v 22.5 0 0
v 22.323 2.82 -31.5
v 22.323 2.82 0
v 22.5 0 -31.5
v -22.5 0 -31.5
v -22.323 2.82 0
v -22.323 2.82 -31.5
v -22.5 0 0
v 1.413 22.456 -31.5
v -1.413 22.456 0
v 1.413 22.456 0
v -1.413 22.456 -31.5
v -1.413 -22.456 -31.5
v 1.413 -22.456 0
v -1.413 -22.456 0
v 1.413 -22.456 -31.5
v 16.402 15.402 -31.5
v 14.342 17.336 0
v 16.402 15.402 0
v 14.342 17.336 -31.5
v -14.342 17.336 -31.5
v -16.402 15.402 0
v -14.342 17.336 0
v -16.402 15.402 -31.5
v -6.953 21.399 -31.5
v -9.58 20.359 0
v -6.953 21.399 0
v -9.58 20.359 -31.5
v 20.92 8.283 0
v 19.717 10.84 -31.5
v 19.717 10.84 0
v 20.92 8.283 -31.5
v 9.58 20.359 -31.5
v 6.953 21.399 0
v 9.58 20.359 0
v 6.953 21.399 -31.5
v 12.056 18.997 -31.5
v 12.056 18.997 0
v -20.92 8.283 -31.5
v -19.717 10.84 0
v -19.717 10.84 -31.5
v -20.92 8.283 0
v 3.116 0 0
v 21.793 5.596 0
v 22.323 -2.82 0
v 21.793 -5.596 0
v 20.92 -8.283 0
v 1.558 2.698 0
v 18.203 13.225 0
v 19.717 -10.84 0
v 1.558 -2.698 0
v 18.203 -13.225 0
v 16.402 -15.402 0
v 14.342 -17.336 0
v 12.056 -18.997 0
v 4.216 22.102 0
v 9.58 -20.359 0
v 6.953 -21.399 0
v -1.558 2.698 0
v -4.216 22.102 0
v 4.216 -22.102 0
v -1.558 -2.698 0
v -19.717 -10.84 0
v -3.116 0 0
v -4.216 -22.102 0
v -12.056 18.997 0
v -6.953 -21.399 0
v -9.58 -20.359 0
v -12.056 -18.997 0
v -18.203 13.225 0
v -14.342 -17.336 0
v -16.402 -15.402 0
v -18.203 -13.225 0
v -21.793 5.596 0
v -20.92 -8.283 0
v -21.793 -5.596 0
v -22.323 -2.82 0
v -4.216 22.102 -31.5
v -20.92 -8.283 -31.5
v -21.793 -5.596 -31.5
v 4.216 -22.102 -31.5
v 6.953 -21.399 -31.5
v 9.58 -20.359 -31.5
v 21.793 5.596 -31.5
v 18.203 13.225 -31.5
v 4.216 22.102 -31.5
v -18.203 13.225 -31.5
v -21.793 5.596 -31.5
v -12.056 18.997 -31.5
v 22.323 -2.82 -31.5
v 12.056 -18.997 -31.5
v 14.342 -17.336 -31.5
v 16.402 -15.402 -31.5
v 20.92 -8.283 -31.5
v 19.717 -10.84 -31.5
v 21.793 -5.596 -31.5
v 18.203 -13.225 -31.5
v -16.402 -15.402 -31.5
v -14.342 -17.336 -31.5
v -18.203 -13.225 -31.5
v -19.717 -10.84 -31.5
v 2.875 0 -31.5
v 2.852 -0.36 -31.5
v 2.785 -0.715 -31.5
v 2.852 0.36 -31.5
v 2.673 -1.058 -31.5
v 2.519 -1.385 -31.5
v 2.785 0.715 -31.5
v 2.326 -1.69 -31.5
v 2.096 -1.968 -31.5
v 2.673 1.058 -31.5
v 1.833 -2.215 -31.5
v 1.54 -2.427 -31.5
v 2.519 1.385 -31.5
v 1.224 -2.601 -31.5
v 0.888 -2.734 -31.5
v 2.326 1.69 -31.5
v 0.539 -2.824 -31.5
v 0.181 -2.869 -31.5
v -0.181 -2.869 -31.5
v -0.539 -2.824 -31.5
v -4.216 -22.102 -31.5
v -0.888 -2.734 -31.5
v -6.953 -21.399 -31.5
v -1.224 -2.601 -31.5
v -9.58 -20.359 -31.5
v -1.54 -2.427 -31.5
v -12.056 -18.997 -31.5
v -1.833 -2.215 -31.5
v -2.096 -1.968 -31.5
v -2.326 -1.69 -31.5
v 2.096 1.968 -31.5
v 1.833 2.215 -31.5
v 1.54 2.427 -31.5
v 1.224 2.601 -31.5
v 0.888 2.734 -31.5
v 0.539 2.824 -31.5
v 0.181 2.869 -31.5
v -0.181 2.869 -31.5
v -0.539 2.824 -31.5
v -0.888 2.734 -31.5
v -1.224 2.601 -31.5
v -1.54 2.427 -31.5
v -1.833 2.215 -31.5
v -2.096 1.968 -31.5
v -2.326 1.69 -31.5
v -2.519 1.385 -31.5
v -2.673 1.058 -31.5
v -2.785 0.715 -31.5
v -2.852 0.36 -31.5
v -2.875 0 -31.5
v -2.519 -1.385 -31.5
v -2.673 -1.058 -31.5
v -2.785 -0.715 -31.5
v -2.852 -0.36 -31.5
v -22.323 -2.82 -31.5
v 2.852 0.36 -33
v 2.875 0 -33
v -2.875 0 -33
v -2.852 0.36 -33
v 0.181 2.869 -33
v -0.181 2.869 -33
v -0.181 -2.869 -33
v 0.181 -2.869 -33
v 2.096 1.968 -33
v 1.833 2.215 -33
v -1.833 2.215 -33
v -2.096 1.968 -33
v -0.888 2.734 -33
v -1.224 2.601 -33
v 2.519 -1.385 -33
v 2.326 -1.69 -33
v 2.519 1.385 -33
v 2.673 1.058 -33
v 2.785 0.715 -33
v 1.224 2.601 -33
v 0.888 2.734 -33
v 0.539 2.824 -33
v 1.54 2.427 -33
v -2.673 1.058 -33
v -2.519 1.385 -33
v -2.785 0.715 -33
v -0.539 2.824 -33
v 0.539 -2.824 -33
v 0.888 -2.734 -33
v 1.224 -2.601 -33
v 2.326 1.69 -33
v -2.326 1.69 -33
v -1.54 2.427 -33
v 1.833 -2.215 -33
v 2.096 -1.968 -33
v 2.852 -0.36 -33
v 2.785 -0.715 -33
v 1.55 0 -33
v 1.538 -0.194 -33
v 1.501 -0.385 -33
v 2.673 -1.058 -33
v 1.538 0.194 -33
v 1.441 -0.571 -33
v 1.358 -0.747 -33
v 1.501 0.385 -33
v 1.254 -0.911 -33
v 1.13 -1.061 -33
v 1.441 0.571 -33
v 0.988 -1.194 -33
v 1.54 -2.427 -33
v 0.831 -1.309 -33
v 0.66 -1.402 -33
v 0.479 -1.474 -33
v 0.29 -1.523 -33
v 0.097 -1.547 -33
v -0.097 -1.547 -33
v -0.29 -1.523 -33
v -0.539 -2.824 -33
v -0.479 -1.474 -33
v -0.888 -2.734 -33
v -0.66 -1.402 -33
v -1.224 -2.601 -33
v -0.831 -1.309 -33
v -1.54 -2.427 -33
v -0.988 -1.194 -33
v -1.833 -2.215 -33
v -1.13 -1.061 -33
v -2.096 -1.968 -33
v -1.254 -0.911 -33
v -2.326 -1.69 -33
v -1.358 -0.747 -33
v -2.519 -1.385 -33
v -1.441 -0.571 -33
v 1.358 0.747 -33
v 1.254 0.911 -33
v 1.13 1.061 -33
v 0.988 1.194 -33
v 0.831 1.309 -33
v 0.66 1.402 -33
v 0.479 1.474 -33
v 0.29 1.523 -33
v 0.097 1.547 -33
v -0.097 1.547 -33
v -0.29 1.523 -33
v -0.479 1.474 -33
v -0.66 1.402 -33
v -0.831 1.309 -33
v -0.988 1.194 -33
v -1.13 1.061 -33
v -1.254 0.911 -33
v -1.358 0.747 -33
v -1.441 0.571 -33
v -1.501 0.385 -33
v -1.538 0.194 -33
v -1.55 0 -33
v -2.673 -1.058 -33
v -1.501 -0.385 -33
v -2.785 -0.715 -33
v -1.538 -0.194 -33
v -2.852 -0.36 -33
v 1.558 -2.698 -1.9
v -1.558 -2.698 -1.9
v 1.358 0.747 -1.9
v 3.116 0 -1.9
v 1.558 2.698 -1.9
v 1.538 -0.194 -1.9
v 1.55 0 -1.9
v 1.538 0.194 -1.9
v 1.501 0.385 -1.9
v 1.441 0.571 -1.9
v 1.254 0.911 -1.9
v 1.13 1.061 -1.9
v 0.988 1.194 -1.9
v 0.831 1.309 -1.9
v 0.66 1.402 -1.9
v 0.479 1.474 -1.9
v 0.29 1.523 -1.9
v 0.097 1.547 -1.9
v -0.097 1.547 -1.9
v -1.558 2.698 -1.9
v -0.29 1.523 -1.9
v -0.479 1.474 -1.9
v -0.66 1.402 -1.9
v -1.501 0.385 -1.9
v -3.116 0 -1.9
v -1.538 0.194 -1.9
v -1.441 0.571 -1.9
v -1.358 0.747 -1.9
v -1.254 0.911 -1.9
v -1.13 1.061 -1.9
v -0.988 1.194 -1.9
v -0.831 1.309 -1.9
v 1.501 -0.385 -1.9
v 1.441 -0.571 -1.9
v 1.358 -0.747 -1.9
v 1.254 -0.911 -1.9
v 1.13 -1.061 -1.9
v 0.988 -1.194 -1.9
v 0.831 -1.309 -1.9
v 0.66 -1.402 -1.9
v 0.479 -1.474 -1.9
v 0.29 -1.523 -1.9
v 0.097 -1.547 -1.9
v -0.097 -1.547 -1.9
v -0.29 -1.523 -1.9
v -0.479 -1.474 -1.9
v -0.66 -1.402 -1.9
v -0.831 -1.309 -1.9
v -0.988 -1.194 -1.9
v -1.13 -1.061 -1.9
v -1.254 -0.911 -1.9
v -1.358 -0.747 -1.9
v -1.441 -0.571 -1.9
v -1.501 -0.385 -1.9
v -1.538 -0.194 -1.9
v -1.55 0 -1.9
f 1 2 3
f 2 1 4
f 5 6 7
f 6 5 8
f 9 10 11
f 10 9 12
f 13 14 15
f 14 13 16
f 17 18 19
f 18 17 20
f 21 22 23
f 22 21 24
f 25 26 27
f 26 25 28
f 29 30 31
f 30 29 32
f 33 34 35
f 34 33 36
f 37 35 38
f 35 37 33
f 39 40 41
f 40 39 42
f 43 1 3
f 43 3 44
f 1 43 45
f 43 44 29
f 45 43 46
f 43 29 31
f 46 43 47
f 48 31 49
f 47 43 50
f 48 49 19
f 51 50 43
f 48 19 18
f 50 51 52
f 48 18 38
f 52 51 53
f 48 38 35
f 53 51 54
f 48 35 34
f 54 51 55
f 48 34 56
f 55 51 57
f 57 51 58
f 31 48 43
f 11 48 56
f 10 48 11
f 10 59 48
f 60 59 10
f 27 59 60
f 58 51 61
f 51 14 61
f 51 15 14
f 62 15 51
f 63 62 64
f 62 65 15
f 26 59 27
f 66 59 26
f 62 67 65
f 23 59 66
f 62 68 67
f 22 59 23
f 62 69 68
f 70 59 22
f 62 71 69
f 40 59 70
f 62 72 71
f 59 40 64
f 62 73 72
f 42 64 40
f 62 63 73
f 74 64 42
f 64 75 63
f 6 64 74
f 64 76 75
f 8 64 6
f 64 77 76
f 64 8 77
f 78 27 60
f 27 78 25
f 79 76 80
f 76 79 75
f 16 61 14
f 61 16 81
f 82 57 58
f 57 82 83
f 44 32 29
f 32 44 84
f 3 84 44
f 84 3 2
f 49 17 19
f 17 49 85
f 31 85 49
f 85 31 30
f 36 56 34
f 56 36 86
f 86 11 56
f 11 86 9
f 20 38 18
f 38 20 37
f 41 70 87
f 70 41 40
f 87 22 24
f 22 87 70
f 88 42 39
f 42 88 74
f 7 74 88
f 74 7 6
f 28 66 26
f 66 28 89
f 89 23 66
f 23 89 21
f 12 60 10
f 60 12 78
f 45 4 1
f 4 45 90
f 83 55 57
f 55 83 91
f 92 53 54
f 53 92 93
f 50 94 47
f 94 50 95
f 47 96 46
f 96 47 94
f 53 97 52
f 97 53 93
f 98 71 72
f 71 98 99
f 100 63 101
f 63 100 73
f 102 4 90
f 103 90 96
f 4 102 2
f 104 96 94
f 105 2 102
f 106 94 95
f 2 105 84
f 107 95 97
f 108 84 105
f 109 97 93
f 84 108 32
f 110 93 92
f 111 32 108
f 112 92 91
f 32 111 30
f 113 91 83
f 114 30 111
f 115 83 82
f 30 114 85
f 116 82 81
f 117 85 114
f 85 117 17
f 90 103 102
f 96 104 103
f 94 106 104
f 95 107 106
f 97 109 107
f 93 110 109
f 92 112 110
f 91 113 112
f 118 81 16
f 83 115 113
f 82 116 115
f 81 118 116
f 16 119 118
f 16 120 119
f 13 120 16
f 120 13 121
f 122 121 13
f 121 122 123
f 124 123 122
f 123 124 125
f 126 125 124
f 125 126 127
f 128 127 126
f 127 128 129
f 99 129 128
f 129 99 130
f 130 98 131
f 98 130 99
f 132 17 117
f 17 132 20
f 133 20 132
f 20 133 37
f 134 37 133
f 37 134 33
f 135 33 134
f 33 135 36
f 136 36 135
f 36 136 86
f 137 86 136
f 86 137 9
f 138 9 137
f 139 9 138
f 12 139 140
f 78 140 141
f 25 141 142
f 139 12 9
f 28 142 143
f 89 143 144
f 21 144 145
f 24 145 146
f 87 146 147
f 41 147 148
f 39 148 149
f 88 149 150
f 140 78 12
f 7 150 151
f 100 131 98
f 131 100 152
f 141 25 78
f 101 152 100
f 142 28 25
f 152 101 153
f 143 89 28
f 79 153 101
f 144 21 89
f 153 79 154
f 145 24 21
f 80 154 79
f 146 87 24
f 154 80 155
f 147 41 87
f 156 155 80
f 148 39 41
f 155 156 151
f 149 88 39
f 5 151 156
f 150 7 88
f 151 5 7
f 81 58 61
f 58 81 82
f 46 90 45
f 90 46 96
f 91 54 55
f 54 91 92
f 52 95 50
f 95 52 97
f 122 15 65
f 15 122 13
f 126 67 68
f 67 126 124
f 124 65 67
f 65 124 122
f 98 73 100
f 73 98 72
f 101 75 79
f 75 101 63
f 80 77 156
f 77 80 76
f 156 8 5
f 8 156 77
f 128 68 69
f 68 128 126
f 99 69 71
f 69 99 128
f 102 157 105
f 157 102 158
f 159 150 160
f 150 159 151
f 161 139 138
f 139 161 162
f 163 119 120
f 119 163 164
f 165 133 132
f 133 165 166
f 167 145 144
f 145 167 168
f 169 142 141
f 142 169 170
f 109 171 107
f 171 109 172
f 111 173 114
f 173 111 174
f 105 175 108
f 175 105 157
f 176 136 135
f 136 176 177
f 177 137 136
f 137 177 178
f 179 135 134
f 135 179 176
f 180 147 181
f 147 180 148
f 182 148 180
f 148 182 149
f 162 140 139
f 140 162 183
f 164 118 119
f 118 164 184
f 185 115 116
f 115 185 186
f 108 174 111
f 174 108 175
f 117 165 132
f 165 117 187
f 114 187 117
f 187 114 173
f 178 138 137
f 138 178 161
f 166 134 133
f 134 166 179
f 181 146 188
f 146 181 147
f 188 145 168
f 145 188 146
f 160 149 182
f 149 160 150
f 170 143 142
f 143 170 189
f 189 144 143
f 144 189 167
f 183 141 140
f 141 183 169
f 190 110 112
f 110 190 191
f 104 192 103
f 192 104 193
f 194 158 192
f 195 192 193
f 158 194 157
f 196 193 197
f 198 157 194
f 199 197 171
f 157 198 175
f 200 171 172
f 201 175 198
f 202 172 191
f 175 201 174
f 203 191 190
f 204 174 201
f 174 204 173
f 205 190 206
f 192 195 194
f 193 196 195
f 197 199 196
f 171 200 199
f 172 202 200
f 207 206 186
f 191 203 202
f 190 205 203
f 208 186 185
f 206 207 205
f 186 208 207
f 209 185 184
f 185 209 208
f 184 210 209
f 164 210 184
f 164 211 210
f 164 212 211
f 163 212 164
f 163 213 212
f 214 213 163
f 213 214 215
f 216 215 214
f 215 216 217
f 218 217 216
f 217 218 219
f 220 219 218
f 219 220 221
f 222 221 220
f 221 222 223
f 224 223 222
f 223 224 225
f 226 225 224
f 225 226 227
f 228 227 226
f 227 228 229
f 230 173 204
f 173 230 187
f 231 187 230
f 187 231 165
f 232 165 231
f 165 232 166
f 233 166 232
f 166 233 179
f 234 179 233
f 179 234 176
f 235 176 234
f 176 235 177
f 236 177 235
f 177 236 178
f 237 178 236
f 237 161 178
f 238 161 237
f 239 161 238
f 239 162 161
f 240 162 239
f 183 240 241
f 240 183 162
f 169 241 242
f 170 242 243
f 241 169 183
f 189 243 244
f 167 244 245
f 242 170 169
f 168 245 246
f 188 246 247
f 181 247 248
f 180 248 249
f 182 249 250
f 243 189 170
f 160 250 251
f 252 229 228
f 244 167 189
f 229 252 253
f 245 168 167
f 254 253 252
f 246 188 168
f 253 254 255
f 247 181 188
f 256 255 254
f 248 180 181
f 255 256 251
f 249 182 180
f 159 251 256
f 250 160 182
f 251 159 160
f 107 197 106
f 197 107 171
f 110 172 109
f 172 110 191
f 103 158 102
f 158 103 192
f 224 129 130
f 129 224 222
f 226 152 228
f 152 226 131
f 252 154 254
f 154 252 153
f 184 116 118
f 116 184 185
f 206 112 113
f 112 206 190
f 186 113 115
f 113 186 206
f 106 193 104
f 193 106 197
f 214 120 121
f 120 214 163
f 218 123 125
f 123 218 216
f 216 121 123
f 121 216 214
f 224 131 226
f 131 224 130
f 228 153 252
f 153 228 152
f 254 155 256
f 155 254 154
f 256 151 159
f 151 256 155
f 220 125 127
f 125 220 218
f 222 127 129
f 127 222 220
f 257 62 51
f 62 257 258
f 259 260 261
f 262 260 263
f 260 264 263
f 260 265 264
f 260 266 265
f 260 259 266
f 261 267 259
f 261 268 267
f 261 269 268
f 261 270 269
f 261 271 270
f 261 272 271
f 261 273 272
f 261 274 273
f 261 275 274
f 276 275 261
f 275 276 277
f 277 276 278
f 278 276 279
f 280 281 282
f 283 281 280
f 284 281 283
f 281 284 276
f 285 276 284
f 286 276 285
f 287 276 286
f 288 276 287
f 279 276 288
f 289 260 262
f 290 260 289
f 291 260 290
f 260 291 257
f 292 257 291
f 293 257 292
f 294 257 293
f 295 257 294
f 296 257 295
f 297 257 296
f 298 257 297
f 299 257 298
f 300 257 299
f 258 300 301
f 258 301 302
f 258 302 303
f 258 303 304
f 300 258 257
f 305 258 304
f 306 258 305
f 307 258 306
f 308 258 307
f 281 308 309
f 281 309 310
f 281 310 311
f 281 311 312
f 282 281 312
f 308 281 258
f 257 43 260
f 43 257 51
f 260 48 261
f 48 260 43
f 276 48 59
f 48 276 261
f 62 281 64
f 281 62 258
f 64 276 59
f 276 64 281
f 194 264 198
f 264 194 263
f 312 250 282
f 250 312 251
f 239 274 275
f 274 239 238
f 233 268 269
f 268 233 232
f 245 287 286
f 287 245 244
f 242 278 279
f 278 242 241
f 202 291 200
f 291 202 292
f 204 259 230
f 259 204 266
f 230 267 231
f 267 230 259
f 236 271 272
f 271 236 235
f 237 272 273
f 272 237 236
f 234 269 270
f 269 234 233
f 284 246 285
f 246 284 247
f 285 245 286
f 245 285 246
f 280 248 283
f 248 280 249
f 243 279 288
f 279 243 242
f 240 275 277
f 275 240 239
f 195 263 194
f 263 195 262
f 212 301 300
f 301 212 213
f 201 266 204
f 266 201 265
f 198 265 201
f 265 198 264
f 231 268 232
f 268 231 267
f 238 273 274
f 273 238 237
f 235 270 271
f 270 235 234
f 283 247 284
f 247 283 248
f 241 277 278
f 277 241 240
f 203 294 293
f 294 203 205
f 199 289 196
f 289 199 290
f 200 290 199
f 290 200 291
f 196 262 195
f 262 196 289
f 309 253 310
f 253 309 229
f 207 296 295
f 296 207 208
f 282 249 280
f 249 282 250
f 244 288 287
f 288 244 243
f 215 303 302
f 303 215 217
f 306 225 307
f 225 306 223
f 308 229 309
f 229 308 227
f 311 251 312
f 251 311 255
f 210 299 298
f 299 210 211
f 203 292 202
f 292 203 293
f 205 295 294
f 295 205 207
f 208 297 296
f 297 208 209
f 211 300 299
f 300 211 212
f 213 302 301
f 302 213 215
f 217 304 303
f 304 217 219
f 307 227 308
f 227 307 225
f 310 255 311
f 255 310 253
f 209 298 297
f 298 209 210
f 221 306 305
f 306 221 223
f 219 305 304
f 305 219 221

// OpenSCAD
$fn = 50;

difference() {
	union() {
		translate(v = [0, 0, -31.5]) {
			cylinder(h = 31.5, r = 22.5);
		}
		#translate(v = [0, 0, -33.0]) {
			cylinder(h = 33, r = 2.875);
		}
	}
	union() {
		translate(v = [0, 0, 0]) {
			rotate(a = [0, 0, 0]) {
				difference() {
					union() {
						translate(v = [0, 0, -1.9]) {
							linear_extrude(height = 1.9) {
								polygon(points = [[3.1158, 0.0], [1.5579000000000005, 2.698361953111554], [-1.5578999999999994, 2.6983619531115544], [-3.1158, 3.815754496783323e-16], [-1.5579000000000014, -2.6983619531115535], [1.557899999999998, -2.6983619531115552]]);
							}
						}
					}
					union();
				}
			}
		}
		#translate(v = [0, 0, -100.0]) {
			cylinder(h = 200, r = 1.55);
		}
	}
}
